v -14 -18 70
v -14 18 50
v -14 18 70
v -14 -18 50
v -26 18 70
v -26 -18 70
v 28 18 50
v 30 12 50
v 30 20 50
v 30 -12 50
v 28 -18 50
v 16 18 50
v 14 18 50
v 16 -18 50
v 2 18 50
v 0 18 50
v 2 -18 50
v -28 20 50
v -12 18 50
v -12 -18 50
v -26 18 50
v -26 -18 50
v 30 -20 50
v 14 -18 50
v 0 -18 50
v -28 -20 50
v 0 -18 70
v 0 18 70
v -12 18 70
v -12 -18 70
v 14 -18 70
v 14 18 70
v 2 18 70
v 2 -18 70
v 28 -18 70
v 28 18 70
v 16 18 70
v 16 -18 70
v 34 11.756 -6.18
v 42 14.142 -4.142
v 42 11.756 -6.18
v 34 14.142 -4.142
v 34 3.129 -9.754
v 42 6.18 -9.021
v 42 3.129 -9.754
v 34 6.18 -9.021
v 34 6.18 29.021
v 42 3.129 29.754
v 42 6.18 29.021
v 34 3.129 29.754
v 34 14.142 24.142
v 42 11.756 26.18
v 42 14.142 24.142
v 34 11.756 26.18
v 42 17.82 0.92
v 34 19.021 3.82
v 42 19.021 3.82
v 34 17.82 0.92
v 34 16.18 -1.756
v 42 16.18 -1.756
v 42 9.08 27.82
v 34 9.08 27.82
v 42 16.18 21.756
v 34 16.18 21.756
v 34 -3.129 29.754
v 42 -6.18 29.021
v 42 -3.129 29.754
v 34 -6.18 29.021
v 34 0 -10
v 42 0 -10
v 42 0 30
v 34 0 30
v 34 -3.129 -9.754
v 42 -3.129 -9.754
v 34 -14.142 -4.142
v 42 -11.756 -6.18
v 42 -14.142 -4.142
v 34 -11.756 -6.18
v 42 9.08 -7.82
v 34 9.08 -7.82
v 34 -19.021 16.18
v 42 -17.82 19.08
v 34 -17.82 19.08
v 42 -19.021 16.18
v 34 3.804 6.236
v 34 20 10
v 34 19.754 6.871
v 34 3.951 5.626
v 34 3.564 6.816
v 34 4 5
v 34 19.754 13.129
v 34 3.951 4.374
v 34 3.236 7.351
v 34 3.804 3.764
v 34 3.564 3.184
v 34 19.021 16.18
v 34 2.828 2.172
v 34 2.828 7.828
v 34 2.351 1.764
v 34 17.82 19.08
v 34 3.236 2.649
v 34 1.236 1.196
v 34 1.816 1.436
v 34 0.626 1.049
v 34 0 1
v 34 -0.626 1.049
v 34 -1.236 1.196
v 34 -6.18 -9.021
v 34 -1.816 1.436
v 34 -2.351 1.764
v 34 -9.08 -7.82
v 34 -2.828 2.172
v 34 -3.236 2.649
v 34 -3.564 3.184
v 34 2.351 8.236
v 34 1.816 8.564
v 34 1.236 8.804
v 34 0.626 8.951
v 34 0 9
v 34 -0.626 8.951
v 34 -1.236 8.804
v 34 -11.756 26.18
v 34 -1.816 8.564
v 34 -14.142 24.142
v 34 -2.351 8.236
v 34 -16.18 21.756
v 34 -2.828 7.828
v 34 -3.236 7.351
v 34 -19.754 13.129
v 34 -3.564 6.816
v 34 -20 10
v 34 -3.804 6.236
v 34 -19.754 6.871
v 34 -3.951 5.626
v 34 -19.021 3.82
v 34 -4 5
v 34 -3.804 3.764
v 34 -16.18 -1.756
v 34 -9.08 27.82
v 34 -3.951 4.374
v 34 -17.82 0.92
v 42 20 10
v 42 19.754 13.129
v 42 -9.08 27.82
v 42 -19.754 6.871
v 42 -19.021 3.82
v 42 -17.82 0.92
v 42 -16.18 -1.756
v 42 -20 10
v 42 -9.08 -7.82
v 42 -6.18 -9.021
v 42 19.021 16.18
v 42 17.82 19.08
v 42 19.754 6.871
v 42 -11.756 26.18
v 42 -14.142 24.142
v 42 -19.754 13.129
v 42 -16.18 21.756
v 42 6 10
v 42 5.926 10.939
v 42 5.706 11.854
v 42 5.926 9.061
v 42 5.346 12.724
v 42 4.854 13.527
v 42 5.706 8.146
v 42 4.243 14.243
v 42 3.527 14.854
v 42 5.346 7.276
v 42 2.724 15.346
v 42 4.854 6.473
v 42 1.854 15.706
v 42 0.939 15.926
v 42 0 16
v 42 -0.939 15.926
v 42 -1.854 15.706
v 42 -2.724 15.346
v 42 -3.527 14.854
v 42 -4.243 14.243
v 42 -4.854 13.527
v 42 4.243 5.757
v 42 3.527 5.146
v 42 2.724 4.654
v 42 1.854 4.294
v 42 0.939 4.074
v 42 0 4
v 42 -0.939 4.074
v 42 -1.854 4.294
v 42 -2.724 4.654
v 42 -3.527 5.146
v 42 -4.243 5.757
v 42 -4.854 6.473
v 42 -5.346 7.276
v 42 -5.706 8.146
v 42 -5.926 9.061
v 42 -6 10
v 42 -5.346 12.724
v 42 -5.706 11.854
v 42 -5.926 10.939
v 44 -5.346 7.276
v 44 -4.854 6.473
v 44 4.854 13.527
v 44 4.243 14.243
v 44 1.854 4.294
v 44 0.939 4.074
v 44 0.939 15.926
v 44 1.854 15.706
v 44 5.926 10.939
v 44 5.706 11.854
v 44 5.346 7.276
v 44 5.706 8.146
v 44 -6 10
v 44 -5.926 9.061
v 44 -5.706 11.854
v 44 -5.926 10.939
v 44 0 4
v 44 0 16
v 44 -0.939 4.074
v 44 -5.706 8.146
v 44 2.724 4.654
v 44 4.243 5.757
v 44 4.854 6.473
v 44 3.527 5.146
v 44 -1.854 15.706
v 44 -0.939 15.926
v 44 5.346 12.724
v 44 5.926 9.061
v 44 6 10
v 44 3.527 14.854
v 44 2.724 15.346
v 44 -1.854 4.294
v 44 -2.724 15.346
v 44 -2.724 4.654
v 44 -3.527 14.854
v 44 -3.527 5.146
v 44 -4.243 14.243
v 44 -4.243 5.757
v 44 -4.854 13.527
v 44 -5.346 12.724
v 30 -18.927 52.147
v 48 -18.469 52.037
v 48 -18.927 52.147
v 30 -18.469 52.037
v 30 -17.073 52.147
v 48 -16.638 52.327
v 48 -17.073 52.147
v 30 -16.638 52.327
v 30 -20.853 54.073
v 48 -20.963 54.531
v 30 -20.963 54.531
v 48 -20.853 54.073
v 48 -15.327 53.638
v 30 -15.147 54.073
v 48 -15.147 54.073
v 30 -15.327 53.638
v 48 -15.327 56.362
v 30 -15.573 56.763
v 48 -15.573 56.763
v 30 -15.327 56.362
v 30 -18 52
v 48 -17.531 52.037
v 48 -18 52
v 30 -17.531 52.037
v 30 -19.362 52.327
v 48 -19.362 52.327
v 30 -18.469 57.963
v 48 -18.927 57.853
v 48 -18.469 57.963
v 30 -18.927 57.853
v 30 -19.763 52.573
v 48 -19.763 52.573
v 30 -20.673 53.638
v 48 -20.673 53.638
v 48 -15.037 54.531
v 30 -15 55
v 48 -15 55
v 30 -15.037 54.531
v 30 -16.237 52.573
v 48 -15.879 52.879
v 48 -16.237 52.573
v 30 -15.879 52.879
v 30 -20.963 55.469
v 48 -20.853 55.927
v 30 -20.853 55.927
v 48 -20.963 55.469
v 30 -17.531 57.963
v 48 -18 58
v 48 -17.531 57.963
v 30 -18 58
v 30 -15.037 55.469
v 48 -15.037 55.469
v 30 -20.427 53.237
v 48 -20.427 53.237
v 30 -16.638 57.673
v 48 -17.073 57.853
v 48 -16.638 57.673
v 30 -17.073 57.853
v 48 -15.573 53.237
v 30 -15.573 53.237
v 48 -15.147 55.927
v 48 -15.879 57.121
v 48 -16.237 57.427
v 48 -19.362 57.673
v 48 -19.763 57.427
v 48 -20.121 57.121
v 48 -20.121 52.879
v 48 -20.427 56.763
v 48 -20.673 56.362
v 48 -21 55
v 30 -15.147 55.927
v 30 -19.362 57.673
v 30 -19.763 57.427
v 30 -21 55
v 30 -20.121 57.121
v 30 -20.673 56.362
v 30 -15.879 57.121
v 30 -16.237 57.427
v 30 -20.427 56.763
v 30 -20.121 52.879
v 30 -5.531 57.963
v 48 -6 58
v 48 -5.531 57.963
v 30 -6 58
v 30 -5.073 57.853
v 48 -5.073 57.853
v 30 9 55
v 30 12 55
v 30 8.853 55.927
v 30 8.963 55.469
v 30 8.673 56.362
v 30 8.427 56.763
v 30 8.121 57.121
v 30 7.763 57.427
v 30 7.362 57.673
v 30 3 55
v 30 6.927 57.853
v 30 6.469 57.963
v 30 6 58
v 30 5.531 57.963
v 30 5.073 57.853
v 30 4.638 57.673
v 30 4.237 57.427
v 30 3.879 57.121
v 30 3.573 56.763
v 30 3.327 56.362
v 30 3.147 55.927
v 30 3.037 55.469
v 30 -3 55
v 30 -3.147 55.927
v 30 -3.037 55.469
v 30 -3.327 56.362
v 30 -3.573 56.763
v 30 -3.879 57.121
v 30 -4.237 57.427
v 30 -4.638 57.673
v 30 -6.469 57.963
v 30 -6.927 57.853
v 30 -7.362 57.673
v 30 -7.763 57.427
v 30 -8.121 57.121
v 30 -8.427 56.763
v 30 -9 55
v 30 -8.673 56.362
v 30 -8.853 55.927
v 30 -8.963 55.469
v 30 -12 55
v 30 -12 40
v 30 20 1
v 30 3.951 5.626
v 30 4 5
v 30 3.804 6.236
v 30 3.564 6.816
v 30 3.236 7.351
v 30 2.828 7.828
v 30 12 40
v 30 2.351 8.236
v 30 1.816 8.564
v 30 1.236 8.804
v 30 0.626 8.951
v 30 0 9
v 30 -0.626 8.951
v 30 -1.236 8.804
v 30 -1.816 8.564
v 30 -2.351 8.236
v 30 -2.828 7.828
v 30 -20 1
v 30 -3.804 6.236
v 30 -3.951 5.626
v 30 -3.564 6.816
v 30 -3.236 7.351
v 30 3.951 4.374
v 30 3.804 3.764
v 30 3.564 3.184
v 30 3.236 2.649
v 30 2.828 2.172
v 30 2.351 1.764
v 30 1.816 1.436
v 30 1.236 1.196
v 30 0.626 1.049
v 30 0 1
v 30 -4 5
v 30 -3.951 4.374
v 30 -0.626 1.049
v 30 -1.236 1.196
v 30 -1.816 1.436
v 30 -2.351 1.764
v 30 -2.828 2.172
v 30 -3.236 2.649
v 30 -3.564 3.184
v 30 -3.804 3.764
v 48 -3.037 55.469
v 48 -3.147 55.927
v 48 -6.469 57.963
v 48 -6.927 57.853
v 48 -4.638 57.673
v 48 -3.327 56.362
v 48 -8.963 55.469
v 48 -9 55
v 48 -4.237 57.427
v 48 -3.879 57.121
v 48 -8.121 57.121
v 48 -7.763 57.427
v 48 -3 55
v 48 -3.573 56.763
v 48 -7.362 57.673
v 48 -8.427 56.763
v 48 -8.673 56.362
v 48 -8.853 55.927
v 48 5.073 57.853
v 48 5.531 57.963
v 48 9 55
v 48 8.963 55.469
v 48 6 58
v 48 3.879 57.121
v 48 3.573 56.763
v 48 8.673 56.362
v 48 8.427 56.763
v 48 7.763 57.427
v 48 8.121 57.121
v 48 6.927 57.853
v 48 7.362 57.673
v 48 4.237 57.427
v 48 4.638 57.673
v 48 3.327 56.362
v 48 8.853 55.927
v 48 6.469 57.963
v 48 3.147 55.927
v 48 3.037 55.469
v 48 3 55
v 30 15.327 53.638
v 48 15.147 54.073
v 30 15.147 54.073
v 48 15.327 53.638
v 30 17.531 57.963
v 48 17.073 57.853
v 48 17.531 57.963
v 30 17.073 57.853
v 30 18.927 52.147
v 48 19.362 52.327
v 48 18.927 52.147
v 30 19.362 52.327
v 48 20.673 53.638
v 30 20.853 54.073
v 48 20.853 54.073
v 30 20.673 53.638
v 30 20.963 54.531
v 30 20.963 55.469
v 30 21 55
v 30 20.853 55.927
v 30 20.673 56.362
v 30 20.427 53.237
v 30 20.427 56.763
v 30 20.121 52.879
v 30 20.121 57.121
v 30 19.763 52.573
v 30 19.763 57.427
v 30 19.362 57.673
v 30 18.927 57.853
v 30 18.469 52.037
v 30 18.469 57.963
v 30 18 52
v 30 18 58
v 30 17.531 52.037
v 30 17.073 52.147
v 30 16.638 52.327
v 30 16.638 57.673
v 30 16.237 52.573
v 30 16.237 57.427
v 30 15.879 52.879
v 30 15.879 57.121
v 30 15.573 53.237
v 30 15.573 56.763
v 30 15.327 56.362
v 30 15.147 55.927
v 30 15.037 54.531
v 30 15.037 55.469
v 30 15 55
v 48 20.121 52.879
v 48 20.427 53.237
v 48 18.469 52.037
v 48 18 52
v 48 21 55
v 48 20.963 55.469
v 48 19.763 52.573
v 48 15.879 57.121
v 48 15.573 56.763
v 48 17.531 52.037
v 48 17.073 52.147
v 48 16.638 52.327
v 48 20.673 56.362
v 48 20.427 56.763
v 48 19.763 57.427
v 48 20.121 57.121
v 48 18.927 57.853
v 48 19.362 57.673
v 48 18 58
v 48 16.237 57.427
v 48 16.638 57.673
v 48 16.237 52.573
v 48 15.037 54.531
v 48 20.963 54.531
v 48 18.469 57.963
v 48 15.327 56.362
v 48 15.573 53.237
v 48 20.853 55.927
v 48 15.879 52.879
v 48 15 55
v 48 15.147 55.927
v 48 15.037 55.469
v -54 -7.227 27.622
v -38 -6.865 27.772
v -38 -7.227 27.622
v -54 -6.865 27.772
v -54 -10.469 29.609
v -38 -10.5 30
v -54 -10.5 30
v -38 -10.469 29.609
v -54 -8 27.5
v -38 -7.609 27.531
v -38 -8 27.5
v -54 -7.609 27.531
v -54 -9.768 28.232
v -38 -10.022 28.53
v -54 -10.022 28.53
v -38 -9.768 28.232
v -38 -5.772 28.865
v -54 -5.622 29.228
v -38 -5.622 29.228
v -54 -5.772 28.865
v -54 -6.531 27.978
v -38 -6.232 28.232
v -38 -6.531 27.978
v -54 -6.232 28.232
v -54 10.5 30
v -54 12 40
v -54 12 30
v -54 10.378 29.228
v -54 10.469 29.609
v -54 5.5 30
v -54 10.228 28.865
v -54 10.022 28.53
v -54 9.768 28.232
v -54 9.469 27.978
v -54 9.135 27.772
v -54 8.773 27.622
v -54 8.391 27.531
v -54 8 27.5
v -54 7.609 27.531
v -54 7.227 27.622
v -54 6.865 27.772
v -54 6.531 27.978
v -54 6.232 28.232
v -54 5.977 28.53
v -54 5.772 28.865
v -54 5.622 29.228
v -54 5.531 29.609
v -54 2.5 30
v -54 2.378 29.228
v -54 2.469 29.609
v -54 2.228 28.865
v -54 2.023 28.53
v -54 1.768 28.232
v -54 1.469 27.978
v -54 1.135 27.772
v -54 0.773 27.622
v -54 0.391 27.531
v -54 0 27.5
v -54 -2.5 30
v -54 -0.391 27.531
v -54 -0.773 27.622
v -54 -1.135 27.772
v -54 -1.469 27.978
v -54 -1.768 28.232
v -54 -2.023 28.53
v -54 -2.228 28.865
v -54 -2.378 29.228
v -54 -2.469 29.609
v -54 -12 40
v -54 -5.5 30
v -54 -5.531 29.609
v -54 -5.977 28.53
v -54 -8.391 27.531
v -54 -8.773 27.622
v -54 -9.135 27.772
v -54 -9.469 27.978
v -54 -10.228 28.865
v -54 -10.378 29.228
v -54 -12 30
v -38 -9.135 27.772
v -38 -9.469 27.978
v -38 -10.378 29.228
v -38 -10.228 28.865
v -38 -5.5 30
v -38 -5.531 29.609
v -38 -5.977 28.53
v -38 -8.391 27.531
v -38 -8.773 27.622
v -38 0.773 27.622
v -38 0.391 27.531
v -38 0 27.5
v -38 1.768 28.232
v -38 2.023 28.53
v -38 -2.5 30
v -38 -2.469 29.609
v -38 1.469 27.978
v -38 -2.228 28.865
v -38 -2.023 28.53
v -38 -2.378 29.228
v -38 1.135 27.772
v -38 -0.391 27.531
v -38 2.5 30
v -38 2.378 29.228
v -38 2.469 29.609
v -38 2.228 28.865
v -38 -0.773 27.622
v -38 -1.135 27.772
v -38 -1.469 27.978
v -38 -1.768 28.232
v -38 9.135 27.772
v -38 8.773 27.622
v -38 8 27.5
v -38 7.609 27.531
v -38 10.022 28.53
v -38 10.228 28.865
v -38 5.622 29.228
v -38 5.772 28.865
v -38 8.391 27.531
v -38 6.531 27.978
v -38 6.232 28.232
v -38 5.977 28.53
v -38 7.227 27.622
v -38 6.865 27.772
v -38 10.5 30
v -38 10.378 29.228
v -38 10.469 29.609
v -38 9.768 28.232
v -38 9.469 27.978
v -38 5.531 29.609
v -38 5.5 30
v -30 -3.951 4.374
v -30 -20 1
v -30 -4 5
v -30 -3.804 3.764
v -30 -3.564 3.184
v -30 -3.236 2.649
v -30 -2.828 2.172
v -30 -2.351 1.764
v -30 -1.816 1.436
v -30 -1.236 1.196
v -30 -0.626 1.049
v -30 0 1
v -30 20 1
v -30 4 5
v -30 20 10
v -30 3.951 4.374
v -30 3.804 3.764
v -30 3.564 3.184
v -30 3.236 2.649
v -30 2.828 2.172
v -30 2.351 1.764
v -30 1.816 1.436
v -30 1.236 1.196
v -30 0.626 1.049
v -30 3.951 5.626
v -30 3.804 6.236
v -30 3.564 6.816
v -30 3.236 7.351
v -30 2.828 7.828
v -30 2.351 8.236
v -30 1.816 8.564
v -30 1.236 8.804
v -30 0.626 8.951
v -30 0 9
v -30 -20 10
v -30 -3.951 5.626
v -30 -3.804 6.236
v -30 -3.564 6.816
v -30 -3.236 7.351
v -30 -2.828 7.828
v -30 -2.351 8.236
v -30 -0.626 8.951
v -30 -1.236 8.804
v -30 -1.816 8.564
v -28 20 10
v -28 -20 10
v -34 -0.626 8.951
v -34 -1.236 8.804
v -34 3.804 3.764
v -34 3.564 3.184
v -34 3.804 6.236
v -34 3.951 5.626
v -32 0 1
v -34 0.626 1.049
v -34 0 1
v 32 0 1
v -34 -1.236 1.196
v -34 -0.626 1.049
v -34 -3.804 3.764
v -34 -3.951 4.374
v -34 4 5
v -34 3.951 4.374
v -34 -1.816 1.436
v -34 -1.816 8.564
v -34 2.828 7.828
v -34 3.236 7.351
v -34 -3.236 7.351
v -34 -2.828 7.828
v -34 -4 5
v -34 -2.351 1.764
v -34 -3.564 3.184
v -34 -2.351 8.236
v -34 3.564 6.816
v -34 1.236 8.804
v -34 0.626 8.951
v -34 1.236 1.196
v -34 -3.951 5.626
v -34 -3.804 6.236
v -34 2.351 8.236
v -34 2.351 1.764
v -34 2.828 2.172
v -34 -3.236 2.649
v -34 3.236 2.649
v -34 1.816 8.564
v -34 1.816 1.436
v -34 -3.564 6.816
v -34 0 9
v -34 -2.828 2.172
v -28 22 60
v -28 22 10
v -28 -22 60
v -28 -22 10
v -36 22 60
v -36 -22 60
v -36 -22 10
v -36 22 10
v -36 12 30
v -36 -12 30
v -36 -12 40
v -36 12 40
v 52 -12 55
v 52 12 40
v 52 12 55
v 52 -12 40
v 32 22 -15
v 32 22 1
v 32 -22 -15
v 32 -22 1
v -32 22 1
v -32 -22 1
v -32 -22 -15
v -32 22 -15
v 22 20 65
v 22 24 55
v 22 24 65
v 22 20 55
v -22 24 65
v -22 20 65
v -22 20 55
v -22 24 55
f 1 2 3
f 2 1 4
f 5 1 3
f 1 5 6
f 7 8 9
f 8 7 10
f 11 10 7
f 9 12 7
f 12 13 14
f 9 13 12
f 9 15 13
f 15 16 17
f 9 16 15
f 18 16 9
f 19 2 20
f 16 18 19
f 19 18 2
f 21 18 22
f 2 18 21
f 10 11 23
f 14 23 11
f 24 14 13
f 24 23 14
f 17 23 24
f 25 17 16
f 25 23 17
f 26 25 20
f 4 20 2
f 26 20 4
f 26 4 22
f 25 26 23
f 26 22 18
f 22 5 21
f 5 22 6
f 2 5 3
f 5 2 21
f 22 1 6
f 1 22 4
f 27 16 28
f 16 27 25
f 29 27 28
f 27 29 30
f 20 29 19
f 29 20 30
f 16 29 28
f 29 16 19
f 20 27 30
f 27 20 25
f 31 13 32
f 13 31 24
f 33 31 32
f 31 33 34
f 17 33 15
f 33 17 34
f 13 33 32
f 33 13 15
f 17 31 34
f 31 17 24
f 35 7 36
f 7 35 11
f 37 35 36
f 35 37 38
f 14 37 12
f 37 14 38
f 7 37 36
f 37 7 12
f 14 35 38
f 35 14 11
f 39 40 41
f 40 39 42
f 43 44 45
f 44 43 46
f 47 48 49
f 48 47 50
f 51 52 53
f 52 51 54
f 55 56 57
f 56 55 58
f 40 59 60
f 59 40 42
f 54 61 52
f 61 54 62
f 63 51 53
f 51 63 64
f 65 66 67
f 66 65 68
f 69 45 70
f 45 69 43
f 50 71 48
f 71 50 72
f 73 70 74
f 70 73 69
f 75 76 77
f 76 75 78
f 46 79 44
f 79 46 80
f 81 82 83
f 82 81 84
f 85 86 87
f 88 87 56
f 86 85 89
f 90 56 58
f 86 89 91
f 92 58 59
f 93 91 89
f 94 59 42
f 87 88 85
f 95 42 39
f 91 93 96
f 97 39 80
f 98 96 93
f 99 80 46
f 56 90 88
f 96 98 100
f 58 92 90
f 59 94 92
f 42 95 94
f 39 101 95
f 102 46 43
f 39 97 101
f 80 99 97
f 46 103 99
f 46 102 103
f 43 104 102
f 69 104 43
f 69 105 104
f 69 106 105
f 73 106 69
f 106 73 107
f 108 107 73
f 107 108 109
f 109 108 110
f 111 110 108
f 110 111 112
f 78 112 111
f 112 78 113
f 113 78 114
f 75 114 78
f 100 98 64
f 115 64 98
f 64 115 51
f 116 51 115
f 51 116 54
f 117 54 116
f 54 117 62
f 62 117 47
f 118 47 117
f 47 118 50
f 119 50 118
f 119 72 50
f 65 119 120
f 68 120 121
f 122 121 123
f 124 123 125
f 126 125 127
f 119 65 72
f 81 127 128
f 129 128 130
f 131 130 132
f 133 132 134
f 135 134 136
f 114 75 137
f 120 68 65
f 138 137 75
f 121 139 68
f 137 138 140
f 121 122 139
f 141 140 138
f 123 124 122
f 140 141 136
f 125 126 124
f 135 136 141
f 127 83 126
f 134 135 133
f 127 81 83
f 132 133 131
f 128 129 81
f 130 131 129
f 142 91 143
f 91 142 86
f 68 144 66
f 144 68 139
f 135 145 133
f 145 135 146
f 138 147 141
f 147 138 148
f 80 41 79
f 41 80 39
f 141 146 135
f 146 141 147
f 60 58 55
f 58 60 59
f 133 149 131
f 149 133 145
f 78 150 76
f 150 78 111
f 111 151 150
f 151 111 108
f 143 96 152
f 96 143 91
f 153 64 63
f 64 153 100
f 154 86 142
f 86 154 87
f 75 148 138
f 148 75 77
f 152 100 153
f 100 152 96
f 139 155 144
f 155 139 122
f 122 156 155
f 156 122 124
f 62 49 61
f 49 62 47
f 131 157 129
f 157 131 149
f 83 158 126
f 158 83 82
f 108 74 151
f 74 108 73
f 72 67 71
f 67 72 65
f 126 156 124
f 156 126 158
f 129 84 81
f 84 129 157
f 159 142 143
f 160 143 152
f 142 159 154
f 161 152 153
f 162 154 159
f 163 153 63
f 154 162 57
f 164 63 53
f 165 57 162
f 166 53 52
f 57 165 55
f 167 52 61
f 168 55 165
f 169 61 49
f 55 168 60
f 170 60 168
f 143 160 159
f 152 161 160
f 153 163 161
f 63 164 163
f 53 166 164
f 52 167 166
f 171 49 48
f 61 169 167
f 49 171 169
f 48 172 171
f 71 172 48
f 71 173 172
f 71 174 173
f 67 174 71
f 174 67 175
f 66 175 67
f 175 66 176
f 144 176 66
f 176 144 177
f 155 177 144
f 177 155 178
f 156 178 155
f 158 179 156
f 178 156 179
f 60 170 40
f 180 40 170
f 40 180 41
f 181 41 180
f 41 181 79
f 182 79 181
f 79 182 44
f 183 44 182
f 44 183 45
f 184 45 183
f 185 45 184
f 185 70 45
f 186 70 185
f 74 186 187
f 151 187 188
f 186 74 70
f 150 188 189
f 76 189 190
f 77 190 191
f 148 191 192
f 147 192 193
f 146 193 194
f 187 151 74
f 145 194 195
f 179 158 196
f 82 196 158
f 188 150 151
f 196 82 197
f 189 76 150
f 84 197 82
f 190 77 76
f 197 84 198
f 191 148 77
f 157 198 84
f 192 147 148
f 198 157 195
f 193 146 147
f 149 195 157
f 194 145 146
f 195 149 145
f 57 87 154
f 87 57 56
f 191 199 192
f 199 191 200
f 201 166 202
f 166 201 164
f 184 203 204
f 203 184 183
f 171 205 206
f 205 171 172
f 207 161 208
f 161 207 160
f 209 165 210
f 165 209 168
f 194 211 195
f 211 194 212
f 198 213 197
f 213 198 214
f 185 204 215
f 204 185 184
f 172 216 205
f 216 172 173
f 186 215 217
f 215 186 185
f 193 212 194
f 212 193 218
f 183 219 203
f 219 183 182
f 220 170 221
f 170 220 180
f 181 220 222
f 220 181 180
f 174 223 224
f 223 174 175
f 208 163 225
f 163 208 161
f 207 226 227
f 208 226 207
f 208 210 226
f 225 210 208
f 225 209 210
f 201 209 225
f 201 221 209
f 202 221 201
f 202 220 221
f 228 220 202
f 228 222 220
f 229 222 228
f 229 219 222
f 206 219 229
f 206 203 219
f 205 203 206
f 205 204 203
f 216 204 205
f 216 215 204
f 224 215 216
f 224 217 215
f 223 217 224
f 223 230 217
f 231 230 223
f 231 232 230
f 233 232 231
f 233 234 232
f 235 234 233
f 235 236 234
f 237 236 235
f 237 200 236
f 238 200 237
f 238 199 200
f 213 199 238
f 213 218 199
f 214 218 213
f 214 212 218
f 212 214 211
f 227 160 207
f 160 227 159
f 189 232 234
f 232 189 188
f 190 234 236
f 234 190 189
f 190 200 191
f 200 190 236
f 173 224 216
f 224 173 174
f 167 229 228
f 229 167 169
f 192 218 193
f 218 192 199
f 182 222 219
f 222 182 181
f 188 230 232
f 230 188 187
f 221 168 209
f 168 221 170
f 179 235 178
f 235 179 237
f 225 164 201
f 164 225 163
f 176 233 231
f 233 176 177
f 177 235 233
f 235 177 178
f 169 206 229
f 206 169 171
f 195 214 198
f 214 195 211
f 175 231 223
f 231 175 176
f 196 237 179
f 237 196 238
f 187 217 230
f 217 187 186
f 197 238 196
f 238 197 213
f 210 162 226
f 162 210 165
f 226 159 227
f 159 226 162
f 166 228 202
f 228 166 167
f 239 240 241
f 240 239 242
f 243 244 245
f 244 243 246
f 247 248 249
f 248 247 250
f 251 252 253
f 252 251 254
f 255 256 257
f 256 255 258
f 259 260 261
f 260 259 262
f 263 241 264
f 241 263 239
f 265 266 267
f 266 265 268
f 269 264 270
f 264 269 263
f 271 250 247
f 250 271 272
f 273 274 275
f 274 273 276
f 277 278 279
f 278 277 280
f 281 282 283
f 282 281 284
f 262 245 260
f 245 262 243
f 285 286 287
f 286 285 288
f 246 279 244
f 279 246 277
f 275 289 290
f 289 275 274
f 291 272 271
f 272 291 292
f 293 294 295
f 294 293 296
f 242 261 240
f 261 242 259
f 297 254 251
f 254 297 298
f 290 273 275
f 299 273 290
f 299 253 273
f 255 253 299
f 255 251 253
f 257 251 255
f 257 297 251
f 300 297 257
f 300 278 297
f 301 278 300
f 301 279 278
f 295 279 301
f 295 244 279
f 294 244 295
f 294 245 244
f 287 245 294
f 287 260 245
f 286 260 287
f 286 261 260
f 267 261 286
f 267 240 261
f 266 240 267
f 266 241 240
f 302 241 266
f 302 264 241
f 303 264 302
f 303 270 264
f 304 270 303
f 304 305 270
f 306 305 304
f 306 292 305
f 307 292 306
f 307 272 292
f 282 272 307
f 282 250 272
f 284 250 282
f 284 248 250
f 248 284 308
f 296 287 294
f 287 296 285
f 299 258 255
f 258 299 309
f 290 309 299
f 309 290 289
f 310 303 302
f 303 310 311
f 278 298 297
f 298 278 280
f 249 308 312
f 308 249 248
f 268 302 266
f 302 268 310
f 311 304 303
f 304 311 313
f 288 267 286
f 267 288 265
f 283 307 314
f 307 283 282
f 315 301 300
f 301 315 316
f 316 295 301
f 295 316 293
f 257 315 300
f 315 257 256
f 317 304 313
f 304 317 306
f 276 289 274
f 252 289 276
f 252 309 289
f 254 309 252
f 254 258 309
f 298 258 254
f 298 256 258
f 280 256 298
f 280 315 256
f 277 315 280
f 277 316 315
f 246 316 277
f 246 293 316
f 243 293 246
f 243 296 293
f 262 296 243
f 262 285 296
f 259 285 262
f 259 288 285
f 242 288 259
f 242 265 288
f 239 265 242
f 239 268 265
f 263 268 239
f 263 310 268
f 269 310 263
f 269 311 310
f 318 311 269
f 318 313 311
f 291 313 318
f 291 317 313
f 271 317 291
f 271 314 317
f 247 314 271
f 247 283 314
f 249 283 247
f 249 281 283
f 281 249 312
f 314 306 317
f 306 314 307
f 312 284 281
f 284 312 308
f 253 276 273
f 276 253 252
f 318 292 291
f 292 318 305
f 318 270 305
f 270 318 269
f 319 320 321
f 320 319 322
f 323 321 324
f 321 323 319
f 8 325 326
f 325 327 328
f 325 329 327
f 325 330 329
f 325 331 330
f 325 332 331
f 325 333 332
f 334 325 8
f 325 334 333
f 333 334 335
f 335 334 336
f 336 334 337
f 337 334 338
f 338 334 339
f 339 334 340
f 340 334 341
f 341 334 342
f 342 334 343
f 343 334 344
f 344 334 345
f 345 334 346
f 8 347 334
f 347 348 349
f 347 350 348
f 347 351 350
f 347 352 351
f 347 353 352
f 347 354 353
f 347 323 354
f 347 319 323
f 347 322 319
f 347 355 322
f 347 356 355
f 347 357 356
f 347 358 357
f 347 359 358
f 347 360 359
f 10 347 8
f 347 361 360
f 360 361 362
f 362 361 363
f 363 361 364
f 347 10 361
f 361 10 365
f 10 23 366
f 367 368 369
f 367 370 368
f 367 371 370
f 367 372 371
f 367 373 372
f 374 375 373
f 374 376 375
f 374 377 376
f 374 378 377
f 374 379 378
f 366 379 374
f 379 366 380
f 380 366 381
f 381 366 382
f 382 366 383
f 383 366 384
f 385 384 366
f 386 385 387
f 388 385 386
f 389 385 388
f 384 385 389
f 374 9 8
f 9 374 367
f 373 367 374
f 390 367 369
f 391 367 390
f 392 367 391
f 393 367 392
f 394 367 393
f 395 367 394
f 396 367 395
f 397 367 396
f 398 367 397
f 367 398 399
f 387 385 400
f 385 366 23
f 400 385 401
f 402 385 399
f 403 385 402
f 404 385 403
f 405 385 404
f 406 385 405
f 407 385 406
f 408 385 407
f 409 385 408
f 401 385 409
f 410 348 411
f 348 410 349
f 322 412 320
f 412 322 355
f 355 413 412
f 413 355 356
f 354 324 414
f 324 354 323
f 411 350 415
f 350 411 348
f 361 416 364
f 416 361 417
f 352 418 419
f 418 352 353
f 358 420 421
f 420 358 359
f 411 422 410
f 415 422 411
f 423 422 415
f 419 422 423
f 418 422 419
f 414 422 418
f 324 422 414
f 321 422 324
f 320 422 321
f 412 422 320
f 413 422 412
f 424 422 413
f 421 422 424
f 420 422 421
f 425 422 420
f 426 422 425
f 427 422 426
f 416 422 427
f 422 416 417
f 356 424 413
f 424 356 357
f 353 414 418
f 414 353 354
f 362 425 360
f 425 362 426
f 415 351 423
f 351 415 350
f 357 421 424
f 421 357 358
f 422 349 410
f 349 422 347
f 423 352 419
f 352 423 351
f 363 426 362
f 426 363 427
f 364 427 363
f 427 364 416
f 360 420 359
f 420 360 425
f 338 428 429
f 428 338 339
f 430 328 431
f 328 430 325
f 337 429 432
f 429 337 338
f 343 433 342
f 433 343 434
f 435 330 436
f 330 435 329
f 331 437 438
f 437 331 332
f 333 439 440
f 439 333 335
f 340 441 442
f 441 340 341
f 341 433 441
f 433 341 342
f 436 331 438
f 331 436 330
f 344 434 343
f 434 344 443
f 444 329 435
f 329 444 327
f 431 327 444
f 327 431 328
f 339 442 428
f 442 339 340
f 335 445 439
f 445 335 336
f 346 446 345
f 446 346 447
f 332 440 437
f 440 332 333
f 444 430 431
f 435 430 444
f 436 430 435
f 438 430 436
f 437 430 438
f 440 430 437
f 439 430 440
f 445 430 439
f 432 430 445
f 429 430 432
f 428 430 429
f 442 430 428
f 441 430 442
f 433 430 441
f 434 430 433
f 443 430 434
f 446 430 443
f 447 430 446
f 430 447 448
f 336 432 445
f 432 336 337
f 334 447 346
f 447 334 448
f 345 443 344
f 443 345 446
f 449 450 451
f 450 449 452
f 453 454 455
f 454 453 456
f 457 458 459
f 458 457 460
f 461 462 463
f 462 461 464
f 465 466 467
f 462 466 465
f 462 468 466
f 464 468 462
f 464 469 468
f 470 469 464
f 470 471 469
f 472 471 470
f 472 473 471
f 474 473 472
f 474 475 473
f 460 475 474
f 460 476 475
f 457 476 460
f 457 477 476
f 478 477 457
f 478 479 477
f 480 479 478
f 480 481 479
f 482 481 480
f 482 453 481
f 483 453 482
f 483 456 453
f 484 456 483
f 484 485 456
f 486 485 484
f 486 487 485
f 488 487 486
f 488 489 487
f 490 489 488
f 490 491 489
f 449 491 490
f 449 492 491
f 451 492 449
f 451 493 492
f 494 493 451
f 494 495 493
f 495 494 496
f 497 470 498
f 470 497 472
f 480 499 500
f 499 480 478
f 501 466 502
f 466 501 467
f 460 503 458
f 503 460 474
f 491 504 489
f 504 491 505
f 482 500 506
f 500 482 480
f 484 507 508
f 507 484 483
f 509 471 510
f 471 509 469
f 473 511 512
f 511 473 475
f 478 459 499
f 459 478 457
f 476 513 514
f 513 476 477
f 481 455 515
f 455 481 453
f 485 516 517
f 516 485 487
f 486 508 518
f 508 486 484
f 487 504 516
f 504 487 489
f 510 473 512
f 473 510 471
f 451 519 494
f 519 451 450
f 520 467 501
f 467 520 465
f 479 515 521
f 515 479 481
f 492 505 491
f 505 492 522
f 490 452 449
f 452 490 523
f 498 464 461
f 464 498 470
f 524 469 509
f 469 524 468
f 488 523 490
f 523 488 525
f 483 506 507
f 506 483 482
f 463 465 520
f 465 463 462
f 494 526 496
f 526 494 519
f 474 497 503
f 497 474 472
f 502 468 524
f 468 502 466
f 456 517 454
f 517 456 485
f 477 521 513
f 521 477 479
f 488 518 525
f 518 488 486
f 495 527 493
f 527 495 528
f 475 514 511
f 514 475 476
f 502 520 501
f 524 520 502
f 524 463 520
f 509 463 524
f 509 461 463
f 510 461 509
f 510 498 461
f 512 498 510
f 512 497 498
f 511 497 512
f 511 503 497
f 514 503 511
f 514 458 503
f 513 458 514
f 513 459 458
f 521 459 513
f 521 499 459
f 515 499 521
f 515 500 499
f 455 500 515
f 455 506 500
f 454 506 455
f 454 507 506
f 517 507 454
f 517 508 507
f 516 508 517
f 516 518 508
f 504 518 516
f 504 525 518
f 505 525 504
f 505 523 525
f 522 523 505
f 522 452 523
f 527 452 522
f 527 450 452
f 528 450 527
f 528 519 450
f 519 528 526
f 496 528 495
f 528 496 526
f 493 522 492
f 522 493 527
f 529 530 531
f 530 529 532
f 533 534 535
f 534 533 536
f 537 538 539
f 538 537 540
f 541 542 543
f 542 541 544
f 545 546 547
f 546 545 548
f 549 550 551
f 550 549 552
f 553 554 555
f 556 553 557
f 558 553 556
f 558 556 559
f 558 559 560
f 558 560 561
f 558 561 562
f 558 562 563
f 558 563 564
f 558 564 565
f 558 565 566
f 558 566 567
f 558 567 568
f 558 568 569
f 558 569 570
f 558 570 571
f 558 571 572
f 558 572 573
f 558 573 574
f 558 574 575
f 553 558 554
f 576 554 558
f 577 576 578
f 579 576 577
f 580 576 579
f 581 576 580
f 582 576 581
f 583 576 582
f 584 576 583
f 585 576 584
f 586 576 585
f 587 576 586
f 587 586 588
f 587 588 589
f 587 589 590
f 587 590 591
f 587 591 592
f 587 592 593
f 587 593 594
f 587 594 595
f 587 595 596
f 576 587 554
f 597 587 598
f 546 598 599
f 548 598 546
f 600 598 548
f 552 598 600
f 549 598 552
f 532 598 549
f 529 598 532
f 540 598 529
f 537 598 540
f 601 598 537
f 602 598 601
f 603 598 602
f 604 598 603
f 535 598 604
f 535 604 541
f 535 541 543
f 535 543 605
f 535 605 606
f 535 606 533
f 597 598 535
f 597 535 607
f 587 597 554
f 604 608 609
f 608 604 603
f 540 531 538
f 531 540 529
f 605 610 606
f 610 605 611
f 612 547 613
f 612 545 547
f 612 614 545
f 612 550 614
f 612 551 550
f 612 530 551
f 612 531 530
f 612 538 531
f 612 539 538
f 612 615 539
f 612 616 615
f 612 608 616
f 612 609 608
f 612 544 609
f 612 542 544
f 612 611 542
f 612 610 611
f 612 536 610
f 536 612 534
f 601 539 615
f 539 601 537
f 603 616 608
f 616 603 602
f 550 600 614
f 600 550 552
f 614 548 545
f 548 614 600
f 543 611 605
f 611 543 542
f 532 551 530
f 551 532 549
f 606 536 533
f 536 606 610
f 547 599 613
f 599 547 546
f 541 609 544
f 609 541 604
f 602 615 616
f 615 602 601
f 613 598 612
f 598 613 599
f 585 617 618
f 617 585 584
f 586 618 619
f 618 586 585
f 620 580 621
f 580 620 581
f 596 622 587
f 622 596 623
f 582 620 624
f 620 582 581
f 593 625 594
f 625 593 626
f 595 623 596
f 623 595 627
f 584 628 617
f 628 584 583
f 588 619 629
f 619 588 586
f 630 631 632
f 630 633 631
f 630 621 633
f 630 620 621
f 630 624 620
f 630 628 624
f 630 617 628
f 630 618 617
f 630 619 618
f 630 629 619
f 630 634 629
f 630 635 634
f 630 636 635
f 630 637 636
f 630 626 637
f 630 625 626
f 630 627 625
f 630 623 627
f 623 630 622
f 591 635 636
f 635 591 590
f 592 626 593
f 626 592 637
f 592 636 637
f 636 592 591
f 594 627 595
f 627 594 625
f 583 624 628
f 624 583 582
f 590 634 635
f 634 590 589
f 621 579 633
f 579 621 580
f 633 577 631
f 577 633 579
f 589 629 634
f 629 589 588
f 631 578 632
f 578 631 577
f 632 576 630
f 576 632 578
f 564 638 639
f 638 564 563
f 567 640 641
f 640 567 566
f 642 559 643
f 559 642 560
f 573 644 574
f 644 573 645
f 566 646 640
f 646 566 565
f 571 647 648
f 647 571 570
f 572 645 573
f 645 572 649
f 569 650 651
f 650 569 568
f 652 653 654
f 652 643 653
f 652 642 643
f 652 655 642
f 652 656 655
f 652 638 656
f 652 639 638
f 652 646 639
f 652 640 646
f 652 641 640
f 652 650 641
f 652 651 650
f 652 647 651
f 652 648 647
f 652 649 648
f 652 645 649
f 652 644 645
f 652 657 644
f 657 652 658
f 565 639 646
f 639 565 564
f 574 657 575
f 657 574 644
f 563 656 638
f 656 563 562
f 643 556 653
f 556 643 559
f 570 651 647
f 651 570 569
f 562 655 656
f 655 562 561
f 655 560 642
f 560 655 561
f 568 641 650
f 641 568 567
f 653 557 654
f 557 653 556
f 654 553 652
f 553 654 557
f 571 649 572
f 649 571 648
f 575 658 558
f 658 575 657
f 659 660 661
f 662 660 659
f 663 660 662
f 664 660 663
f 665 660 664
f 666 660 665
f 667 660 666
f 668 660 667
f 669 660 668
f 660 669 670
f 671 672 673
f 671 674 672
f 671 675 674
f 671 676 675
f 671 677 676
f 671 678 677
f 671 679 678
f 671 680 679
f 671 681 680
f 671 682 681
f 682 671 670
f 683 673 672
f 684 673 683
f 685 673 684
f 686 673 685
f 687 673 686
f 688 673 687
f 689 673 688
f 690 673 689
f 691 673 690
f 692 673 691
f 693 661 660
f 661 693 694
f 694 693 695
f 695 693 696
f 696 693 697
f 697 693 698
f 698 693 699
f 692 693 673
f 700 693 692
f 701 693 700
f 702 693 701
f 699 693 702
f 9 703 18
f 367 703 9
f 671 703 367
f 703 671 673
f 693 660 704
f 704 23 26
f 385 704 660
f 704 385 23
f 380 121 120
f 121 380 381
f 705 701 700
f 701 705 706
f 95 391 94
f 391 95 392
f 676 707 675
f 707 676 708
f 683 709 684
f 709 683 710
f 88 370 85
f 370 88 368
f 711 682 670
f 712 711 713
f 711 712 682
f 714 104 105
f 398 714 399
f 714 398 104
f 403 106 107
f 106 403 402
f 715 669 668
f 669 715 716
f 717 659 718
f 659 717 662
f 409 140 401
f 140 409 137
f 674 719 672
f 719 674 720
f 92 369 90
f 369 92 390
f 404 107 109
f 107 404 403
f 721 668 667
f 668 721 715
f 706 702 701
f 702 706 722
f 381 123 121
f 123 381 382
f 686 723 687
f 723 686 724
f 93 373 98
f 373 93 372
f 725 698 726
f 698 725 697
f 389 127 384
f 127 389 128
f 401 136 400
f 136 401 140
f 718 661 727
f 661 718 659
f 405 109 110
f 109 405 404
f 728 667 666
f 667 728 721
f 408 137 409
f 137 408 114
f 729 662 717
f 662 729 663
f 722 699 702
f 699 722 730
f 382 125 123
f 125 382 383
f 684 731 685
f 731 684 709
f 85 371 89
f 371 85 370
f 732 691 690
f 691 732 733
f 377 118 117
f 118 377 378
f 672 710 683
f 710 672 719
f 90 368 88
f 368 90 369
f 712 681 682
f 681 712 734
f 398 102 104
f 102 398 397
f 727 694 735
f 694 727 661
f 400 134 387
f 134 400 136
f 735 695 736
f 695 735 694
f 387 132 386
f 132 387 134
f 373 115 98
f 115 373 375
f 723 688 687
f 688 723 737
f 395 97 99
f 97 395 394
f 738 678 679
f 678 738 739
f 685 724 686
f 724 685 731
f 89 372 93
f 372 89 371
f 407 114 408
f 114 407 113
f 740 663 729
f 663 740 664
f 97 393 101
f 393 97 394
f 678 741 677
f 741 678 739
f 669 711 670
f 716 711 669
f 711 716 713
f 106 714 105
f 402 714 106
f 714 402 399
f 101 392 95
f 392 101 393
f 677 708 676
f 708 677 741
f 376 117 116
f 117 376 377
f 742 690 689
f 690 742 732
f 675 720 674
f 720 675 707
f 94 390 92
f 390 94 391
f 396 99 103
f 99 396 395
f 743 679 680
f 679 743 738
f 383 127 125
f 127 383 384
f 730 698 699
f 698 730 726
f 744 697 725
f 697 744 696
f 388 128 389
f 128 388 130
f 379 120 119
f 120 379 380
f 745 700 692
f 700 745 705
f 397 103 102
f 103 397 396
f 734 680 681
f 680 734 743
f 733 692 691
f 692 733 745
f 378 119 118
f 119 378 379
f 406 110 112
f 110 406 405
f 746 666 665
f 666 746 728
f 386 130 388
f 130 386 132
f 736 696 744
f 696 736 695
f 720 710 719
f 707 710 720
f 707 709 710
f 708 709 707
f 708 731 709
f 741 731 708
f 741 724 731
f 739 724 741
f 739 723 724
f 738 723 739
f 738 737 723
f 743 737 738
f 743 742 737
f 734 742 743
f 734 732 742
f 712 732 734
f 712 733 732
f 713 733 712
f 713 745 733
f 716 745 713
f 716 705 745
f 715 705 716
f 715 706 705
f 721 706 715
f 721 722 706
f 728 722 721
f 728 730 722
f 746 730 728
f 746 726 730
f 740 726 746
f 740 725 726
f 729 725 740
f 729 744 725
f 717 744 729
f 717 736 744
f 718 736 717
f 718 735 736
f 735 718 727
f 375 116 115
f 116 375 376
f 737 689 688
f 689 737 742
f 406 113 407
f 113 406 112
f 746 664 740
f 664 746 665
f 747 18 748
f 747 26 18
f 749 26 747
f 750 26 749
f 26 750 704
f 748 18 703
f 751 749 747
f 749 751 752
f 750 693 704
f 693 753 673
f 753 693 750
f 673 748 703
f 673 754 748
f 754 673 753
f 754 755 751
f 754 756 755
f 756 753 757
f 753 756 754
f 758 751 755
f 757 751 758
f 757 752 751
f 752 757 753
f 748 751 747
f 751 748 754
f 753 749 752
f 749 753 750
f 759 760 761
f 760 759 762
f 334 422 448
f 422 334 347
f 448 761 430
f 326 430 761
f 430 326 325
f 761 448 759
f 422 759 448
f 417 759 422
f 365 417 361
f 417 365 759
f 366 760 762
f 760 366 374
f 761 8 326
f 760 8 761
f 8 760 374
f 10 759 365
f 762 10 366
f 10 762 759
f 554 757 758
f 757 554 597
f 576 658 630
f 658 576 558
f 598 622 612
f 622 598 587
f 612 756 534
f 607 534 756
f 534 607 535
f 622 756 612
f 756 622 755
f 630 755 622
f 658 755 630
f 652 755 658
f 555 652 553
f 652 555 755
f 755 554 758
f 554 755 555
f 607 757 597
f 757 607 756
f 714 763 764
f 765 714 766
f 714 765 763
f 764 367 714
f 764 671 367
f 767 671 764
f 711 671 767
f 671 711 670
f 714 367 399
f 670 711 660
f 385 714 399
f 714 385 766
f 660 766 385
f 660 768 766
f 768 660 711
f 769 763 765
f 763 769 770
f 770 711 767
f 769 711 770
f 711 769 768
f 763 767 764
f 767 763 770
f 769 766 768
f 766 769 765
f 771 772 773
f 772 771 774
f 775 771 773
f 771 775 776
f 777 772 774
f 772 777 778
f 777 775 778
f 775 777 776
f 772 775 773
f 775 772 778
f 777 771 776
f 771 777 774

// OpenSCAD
// 內燃機 ICE Engine — 直列四缸引擎示意
$fn = 40;

// 引擎缸體（灰鑄鐵）
color([0.42, 0.42, 0.45])
  translate([-30, -20, 0]) cube([60, 40, 50]);

// 四個汽缸頭
color([0.38, 0.38, 0.40])
  for (x = [-20, -6, 8, 22])
    translate([x-6, -18, 50]) cube([12, 36, 20]);

// 活塞（四個）
color([0.68, 0.70, 0.72])
  for (x = [-20, -6, 8, 22])
    translate([x, 0, 15]) cylinder(h = 20, r = 5.5);

// 曲軸（橫向）
color([0.55, 0.56, 0.58])
  translate([-34, 0, 5]) rotate([0, 90, 0]) cylinder(h = 68, r = 4);

// 飛輪
color([0.35, 0.35, 0.38])
  translate([34, 0, 10]) rotate([0, 90, 0]) {
    cylinder(h = 8, r = 20);
    cylinder(h = 10, r = 6);
  }

// 正時蓋（左側）
color([0.30, 0.30, 0.33])
  translate([-36, -22, 10]) cube([8, 44, 50]);

// 進氣歧管（右側進氣，紫色）
color([0.40, 0.18, 0.55])
  translate([30, -12, 40]) cube([22, 24, 15]);
color([0.38, 0.16, 0.50])
  for (x = [-18, -6, 6, 18])
    translate([30, x, 55]) rotate([0, 90, 0]) cylinder(h = 18, r = 3);

// 排氣管（左側，橘色）
color([0.70, 0.30, 0.08])
  translate([-54, -12, 30]) cube([20, 24, 10]);
color([0.65, 0.28, 0.06])
  for (x = [-8, 0, 8])
    translate([-54, x, 30]) rotate([0, 90, 0]) cylinder(h = 16, r = 2.5);

// 機油底殼（底部，黑色）
color([0.12, 0.12, 0.14])
  translate([-32, -22, -15]) cube([64, 44, 16]);

// 冷卻水管
color([0.10, 0.45, 0.75])
  translate([-22, 20, 55]) cube([44, 4, 10]);
